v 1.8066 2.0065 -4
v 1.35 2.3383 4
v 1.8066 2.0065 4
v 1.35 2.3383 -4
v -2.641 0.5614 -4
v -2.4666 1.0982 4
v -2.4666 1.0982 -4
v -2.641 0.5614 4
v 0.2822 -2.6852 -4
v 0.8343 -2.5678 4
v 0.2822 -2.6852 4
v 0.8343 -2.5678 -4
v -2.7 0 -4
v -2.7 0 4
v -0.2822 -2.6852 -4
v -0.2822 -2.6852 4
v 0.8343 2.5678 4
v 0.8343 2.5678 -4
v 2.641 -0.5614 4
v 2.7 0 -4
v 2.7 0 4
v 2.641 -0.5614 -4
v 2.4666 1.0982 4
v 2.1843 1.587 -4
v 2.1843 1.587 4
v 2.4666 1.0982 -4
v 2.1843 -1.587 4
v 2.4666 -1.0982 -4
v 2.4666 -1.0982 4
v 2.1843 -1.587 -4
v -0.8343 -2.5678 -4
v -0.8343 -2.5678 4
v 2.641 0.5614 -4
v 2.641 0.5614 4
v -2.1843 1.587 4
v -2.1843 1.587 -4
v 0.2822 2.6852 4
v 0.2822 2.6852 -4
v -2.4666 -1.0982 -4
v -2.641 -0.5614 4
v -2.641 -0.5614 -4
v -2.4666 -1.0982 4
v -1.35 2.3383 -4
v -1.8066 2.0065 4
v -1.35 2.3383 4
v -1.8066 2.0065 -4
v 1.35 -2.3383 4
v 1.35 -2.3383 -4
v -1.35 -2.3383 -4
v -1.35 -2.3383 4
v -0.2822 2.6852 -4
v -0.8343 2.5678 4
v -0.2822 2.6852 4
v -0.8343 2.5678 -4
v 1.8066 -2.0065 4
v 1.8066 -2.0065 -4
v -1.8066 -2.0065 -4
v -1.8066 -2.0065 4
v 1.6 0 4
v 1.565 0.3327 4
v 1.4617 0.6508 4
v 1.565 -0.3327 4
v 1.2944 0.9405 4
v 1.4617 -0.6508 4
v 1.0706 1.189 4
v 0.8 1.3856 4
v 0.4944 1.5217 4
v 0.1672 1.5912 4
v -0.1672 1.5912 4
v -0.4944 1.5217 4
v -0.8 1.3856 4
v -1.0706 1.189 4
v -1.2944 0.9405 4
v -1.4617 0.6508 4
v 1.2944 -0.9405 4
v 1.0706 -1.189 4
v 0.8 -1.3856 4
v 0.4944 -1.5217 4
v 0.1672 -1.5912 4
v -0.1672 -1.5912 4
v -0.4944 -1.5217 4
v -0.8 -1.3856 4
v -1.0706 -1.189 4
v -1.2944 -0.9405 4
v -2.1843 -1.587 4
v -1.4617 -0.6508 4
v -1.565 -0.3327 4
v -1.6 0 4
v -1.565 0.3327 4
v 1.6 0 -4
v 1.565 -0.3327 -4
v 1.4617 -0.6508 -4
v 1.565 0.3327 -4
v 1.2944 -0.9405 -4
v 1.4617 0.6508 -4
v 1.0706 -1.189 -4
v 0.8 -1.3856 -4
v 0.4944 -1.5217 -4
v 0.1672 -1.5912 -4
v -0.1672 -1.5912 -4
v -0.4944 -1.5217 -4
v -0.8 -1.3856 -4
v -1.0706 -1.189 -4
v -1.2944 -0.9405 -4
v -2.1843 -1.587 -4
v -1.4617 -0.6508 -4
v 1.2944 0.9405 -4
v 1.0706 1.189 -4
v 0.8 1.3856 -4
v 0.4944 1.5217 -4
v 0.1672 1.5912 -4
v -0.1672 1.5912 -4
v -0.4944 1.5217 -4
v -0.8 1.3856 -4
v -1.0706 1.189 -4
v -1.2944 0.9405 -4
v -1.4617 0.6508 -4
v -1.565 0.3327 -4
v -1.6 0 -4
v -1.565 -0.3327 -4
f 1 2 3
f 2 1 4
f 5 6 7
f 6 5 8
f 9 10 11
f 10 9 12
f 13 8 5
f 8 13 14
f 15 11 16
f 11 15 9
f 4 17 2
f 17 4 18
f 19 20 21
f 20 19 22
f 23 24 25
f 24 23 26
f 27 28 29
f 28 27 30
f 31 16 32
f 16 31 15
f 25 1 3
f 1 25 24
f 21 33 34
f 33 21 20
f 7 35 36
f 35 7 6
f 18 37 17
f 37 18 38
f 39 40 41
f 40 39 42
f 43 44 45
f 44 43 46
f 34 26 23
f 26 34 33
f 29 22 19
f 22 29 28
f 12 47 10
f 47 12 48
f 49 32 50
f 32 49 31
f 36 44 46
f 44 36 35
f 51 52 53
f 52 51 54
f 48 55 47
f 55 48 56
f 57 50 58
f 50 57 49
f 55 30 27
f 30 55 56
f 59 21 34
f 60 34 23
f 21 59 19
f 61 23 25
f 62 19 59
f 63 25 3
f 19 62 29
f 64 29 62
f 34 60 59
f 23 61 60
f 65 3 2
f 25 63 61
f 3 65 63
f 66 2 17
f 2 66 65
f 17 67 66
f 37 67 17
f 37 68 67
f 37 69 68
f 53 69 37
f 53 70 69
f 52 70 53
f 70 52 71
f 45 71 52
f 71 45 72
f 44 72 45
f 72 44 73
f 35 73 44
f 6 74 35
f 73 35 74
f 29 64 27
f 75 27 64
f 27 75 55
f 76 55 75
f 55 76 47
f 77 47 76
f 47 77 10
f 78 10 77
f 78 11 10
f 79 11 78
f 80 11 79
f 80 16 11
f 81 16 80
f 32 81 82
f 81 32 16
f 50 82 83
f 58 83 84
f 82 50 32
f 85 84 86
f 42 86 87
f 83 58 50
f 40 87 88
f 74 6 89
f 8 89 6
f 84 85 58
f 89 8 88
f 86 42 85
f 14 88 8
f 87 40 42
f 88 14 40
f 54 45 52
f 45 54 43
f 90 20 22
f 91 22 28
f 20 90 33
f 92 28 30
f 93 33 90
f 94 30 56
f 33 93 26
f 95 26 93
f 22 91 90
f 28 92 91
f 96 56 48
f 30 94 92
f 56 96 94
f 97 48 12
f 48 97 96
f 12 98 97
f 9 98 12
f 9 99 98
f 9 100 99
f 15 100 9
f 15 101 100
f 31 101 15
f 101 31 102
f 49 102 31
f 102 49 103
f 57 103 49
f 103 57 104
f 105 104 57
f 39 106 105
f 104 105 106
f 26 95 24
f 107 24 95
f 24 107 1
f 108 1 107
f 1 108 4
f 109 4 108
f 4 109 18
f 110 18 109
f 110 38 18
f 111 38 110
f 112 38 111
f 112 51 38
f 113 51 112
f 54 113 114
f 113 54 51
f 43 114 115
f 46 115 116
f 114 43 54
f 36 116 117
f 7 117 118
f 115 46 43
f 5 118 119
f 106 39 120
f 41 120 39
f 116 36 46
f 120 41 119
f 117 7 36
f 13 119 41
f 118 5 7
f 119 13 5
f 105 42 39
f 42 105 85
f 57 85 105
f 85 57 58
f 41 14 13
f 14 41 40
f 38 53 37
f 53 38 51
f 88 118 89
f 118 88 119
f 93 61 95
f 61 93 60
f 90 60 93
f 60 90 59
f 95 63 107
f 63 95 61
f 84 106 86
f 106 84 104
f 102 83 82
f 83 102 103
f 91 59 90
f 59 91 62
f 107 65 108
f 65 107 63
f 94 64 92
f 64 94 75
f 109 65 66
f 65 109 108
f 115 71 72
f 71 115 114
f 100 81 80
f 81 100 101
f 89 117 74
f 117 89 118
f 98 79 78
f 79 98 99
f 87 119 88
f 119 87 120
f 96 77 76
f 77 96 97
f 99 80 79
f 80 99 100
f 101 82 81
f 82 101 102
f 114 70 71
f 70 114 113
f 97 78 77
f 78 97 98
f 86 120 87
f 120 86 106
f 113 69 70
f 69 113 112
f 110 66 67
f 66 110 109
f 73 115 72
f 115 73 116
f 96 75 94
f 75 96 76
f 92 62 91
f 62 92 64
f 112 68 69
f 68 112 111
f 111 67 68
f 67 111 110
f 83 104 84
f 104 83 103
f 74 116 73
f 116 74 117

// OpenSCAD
$fn=30;

hole_rad = 3.2/2;
outer_rad = 5.4/2;

difference(){
    cylinder(8.0,outer_rad, outer_rad,center=true);
    cylinder(9,hole_rad, hole_rad,center=true);
}
